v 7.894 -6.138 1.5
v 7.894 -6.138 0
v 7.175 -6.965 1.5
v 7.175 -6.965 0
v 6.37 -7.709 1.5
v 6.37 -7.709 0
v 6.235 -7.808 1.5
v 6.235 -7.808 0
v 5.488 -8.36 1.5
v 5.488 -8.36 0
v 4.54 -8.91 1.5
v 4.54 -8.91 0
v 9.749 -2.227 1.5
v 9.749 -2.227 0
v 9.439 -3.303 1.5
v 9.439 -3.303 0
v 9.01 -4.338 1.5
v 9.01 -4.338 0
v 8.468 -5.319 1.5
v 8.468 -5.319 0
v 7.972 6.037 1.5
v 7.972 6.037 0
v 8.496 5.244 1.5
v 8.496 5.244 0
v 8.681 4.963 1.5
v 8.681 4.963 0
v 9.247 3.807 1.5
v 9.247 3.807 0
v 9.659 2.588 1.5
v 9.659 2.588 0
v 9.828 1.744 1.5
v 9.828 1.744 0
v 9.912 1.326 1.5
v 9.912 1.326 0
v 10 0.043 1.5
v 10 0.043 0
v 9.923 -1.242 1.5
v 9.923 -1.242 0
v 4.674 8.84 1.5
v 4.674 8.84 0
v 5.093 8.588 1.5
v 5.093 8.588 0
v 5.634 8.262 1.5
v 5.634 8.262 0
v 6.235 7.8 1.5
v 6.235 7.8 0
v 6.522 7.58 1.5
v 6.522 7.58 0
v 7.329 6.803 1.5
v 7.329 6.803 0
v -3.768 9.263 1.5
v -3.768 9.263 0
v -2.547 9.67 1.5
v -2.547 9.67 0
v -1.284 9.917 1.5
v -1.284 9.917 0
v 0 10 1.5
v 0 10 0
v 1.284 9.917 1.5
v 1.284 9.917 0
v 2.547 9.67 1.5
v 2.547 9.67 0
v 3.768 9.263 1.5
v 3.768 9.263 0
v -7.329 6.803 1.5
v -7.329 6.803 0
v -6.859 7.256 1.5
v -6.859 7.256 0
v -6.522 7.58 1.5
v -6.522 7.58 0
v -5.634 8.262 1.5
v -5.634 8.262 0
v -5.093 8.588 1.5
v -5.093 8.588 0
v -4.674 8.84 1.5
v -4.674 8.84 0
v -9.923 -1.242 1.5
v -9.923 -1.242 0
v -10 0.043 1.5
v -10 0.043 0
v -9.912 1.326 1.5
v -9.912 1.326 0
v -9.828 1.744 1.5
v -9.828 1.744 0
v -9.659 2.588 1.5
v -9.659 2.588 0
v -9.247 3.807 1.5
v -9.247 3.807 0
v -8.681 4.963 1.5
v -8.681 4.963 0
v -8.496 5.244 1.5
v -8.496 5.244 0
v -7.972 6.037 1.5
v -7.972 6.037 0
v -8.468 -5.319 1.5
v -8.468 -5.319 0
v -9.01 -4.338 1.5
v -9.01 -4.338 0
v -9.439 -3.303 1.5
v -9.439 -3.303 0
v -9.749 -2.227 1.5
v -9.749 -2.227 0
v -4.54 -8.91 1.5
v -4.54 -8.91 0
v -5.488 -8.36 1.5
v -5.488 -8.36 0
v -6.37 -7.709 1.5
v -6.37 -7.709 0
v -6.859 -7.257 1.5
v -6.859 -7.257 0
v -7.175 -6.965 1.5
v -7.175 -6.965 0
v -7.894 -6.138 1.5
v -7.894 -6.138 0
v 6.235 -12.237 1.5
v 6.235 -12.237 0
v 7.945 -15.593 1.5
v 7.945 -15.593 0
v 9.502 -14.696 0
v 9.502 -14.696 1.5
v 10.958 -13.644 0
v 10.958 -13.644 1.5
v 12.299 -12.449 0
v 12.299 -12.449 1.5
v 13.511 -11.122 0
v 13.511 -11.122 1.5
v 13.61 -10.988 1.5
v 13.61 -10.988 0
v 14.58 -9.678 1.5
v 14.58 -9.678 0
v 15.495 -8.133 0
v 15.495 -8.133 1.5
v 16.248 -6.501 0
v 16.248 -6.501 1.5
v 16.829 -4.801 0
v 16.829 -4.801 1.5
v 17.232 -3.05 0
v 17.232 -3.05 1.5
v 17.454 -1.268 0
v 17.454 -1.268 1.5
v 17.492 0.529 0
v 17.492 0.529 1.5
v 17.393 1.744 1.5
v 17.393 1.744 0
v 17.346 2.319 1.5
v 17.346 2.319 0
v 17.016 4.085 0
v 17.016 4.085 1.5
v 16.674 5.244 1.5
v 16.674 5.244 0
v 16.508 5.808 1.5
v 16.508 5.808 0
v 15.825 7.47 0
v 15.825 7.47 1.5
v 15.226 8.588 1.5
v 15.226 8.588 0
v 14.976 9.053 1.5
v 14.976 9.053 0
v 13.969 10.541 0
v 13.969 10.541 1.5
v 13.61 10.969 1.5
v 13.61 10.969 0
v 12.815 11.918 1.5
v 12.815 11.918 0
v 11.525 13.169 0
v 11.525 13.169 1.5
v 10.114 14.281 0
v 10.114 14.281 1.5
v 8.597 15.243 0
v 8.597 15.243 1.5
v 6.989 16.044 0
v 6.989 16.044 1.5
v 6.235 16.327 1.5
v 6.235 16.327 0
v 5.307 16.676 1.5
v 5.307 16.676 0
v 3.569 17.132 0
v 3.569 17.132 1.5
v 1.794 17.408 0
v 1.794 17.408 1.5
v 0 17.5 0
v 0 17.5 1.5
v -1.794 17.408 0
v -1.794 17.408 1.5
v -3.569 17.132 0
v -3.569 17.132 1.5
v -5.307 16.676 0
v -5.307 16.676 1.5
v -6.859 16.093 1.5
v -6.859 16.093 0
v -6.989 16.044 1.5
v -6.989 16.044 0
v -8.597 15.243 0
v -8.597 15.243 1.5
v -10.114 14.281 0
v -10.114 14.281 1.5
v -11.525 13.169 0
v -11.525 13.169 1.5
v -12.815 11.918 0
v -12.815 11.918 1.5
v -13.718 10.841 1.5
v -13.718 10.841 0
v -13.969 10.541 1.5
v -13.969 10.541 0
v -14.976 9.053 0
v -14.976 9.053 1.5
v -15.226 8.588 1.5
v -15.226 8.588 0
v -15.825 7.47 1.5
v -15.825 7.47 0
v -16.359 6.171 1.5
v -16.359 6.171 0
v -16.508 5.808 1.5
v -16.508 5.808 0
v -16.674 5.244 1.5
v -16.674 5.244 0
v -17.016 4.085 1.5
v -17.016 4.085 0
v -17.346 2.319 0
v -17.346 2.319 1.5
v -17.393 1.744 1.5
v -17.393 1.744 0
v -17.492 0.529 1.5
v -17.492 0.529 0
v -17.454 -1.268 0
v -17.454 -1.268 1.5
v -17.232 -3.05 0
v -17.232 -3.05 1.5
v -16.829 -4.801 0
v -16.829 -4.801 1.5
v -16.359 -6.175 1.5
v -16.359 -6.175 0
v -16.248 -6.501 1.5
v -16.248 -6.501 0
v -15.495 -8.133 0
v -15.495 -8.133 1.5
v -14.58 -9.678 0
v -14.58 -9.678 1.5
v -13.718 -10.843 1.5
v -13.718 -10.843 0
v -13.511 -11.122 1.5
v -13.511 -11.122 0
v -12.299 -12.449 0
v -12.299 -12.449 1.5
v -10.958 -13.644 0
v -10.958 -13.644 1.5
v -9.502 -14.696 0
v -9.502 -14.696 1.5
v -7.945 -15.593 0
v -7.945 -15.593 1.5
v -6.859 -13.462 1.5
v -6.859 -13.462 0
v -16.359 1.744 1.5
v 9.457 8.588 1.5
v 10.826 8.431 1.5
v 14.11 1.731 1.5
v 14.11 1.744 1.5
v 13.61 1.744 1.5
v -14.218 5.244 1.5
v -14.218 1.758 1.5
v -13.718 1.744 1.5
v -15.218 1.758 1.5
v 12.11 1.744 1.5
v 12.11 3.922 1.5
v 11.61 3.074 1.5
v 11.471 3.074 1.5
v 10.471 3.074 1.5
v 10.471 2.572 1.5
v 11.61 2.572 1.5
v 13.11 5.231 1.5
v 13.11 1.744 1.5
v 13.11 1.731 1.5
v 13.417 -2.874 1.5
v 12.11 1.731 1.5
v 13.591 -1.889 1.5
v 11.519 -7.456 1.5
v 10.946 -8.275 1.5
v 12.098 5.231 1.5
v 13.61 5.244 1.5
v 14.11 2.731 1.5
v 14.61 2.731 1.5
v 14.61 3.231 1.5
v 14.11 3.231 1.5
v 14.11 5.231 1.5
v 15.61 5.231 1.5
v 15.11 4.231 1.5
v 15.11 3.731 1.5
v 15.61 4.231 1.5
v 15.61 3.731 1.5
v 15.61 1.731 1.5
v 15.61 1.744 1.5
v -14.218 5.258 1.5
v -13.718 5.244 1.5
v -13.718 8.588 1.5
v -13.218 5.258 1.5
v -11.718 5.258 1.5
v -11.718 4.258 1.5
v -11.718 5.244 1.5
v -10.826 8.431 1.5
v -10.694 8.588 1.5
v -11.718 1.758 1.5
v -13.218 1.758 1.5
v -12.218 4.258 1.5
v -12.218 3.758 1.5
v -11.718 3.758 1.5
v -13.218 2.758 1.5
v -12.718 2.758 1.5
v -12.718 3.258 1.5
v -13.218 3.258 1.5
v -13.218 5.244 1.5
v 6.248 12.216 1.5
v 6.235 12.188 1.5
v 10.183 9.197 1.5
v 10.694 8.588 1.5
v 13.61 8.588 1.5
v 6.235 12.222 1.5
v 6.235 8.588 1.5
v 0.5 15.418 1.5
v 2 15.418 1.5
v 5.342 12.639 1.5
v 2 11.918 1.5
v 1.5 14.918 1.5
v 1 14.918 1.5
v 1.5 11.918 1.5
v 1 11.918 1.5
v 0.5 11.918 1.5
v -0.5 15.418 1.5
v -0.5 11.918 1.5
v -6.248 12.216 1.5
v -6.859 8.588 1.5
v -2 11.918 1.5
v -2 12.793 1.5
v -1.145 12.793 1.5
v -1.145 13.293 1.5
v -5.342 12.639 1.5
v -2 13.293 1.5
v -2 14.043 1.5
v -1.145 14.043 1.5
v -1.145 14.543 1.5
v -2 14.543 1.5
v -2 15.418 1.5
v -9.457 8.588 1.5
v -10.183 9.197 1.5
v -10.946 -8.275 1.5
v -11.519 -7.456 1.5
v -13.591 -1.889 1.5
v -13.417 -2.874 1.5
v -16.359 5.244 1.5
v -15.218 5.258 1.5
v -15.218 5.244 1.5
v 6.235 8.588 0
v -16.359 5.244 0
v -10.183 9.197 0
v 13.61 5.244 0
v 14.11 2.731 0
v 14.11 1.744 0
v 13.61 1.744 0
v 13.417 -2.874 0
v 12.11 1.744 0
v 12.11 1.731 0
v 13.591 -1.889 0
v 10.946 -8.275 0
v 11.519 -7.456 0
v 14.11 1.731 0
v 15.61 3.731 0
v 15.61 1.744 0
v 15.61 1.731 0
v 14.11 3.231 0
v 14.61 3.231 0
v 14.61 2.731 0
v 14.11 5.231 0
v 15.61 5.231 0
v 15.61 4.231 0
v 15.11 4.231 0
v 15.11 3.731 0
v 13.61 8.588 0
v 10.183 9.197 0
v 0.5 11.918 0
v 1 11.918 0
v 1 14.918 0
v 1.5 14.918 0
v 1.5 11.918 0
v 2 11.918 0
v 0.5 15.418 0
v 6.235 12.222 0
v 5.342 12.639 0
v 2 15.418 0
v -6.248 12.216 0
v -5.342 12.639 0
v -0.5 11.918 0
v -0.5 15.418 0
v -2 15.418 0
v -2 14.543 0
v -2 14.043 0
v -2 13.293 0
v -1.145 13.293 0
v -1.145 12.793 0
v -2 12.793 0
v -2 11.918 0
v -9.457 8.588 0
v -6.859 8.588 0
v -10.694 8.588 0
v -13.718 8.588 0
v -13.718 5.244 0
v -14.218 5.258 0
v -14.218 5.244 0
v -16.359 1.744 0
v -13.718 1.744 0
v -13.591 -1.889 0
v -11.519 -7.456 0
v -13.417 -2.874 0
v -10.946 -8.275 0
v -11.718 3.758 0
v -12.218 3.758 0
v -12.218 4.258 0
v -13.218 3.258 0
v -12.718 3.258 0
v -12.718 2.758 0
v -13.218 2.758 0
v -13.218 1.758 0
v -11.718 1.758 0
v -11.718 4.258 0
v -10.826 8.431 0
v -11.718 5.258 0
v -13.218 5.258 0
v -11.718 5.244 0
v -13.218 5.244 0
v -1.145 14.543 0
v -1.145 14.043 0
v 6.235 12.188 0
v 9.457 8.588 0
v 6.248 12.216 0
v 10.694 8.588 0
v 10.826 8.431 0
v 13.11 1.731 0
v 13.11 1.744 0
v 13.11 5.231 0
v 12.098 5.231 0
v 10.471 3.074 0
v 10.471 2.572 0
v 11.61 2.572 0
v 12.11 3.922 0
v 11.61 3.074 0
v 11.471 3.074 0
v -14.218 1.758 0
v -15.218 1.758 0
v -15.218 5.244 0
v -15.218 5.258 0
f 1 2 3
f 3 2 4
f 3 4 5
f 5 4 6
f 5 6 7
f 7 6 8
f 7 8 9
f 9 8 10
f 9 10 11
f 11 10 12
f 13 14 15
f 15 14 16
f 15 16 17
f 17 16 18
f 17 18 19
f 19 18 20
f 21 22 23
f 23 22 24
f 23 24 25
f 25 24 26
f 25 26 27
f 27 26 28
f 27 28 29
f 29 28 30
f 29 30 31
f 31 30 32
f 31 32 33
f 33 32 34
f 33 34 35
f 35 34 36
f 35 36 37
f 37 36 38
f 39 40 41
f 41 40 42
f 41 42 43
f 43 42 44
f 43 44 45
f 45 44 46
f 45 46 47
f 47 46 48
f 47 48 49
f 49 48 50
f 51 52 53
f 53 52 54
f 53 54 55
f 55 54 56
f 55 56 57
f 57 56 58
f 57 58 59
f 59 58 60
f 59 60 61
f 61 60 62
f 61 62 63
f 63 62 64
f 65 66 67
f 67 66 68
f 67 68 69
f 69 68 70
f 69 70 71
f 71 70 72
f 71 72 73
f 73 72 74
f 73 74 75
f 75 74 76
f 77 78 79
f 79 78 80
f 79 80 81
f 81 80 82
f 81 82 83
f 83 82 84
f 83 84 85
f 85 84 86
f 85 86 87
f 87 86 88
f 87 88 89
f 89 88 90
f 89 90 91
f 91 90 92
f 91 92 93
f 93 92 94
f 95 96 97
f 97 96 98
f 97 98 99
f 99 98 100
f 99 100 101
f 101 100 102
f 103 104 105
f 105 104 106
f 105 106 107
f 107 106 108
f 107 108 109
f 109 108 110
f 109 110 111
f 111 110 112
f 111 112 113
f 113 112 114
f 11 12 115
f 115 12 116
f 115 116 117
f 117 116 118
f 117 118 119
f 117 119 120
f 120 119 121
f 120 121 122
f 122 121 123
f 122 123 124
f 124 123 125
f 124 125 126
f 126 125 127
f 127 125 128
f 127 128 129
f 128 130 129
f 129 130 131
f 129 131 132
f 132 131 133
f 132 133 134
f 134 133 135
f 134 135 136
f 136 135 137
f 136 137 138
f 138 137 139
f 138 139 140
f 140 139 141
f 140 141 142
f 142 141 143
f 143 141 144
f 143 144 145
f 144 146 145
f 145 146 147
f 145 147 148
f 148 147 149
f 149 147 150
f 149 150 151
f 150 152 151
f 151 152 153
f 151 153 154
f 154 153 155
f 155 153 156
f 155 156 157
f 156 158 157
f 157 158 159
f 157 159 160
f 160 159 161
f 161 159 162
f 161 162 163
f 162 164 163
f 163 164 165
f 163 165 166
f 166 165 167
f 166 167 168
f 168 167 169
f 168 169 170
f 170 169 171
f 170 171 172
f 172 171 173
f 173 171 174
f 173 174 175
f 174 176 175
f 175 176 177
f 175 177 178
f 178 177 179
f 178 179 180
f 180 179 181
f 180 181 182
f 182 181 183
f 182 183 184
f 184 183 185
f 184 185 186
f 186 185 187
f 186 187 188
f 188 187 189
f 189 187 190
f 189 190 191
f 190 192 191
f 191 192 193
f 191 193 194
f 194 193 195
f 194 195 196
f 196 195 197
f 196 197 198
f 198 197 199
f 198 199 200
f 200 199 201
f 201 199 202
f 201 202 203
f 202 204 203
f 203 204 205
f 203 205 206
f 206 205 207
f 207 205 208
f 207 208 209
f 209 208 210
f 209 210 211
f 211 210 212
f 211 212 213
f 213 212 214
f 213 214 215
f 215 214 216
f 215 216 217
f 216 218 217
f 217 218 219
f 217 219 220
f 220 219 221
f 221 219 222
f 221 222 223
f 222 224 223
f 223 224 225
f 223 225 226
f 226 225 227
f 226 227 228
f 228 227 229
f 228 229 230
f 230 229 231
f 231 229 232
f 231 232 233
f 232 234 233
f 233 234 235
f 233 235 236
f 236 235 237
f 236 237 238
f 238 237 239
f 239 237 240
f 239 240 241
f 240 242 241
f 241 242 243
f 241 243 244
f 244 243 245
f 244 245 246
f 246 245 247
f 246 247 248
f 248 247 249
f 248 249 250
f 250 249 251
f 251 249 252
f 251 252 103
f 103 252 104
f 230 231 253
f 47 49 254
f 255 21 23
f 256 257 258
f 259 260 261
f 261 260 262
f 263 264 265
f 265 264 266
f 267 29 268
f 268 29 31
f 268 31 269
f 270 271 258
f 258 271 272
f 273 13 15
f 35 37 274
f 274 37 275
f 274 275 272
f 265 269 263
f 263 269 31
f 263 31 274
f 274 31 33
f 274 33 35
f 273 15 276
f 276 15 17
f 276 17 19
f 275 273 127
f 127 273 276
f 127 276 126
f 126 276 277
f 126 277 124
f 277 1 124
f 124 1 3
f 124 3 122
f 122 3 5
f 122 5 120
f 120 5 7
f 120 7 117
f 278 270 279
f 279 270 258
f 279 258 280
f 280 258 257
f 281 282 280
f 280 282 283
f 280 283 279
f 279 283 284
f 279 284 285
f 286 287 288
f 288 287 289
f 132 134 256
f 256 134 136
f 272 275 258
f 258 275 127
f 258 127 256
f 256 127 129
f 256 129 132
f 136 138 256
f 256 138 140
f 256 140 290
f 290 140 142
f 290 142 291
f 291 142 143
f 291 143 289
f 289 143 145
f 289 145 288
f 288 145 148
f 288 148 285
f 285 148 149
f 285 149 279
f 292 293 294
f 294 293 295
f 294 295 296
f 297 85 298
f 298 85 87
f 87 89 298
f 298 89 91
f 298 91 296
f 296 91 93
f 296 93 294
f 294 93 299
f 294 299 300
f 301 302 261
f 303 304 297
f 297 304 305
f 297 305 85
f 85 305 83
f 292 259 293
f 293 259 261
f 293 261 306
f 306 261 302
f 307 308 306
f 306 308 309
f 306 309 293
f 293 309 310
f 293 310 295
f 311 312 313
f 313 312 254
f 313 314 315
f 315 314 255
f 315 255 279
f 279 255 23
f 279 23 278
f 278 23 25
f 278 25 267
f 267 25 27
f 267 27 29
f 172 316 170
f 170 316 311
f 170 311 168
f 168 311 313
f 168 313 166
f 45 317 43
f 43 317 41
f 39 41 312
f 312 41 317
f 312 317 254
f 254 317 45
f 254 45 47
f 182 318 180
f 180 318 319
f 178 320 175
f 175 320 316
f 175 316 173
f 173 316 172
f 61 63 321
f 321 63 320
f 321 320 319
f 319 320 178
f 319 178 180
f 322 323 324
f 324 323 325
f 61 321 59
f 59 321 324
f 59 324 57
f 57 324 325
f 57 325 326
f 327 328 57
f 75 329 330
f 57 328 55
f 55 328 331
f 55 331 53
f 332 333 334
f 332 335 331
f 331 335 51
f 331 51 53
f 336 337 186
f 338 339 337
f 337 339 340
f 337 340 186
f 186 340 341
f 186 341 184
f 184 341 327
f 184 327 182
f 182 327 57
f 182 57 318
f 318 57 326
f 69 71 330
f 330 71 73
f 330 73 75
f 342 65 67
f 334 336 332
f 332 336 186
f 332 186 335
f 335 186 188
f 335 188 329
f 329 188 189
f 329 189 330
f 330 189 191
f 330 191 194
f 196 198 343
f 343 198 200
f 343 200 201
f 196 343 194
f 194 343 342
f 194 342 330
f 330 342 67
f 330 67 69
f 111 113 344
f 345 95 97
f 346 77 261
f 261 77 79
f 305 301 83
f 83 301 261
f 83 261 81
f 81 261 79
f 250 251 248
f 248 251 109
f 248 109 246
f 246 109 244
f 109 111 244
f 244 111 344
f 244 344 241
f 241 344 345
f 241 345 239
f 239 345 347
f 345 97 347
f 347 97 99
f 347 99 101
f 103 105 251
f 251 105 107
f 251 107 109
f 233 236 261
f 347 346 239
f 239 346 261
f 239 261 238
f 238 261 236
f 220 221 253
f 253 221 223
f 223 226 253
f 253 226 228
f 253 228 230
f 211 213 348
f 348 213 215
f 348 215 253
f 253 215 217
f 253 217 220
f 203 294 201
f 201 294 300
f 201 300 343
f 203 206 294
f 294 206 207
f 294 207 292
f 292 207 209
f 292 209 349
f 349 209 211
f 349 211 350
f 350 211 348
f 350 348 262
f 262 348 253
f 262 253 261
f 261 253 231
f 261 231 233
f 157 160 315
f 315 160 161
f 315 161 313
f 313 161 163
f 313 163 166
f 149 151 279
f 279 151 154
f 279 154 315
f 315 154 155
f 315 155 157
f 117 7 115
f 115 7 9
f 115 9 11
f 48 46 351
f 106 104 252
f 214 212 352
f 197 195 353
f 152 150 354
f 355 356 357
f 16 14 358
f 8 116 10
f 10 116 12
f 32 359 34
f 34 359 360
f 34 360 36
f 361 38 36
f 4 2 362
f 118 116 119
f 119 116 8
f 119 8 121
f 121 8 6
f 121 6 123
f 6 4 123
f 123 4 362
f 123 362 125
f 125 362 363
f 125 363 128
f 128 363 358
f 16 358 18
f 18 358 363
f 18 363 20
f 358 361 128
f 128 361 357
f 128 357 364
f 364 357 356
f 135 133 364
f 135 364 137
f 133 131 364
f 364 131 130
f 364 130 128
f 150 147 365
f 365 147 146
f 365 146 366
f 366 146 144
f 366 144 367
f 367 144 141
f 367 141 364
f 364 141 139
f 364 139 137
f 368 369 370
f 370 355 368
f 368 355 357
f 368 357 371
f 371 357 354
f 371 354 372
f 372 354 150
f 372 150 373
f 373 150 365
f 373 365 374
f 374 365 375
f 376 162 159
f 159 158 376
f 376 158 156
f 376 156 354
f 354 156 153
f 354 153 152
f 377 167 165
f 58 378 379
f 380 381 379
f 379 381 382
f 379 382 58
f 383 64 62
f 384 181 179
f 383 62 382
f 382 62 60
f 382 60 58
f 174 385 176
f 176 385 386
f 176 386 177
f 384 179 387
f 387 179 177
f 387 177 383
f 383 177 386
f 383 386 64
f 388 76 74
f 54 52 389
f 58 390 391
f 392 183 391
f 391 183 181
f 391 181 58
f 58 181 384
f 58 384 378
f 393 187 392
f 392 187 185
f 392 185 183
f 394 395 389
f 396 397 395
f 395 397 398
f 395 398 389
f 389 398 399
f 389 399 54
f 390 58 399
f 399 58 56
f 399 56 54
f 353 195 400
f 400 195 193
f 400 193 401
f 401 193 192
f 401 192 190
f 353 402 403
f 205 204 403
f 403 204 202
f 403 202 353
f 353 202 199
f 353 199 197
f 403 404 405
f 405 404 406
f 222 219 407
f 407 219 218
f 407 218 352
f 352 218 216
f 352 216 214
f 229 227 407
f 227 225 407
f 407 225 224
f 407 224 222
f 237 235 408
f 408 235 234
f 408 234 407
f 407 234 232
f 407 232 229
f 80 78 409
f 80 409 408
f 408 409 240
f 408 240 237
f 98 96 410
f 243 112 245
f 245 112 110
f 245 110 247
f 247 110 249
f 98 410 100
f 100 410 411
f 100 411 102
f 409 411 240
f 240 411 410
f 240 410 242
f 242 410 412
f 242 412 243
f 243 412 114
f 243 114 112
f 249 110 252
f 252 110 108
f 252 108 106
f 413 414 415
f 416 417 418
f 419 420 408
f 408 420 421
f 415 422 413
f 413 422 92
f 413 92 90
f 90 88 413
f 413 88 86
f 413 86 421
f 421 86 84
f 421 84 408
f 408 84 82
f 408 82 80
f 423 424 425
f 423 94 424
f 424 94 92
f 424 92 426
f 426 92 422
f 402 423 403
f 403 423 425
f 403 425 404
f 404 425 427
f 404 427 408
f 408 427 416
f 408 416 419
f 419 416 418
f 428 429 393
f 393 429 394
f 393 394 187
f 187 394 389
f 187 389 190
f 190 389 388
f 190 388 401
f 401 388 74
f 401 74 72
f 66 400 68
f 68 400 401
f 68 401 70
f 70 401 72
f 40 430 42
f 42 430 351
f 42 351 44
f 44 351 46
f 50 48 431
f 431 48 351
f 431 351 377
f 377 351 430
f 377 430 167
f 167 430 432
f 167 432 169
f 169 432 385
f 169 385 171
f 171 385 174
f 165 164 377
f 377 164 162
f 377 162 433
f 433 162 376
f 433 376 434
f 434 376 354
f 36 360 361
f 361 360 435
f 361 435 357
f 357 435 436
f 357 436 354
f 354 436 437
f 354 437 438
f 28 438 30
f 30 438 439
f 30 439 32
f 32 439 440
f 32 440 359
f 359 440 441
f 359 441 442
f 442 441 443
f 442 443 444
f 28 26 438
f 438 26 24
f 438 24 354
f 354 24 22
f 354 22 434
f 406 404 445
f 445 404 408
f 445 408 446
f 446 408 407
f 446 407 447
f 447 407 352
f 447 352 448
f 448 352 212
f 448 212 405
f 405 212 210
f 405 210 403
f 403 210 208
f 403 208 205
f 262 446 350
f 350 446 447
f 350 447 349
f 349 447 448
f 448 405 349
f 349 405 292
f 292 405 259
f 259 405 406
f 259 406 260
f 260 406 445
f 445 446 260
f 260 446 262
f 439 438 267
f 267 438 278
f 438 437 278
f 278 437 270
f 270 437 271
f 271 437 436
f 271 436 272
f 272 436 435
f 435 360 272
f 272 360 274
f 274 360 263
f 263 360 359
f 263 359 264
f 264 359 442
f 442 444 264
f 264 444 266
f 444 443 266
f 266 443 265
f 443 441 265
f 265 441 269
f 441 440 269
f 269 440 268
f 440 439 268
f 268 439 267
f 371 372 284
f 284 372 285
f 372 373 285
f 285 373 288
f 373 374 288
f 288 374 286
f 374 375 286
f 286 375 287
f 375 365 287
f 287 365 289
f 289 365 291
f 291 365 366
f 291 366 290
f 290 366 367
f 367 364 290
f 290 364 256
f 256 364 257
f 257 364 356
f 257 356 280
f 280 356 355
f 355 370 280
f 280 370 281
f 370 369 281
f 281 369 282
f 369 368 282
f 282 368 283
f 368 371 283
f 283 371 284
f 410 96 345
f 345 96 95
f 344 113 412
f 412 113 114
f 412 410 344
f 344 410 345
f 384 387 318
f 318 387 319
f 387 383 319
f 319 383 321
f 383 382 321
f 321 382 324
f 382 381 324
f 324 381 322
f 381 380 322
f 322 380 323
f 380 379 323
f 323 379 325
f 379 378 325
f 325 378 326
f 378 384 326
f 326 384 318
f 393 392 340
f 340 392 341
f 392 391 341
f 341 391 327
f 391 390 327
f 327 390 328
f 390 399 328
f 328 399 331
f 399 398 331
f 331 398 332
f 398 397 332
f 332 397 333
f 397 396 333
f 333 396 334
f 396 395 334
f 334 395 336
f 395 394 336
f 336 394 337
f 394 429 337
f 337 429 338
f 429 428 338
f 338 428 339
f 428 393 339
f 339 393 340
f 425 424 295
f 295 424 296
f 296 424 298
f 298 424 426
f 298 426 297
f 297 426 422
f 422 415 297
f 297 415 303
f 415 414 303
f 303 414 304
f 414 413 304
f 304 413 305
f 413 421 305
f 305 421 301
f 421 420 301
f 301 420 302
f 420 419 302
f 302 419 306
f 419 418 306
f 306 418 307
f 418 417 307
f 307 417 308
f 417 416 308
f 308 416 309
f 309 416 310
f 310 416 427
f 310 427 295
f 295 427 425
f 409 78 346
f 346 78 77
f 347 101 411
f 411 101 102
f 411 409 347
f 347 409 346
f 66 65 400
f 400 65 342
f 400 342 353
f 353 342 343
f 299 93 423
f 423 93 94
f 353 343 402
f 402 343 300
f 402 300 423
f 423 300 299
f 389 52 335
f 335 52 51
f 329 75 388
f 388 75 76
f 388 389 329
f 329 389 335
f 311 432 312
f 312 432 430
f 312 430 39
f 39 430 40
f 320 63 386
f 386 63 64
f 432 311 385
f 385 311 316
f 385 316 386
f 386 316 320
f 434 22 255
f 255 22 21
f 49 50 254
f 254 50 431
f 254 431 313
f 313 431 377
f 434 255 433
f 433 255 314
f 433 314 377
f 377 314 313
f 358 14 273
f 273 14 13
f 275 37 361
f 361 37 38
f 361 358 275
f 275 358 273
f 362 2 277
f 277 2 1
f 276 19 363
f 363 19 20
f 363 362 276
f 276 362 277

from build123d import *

# Parameters (mm, degrees)
BOSS_EXTRUDE1_DEPTH = 1.5
SKETCH2_W           = 1
SKETCH2_H           = 3.5
CUT_EXTRUDE1_DEPTH  = 1.5


with BuildPart() as part:
    # Sketch1 → Boss-Extrude1 (new body)
    with BuildSketch(Plane.XY):
        with BuildLine():
            Line((-4.539904997, -8.910065242), (-7.944833745, -15.592614173))
            ThreePointArc((-7.944833745, -15.592614173), (0, 17.5), (7.944833745, -15.592614173))
            Line((7.944833745, -15.592614173), (4.539904997, -8.910065242))
            ThreePointArc((4.539904997, -8.910065242), (0, 10), (-4.539904997, -8.910065242))
        make_face()
    extrude(amount=BOSS_EXTRUDE1_DEPTH)

    # Sketch2 → Cut-Extrude1 (cut)
    with BuildSketch(Plane.XY.offset(1.5)):
        with Locations((-14.718025133, 3.507588082)):
            Rectangle(SKETCH2_W, SKETCH2_H)
        Polygon((-13.218025133, 5.257588082), (-13.218025133, 3.257588082), (-12.718025133, 3.257588082), (-12.718025133, 2.757588082), (-13.218025133, 2.757588082), (-13.218025133, 1.757588082), (-11.718025133, 1.757588082), (-11.718025133, 3.757588082), (-12.218025133, 3.757588082), (-12.218025133, 4.257588082), (-11.718025133, 4.257588082), (-11.718025133, 5.257588082), align=None)
        Polygon((-2, 15.418453076), (-0.5, 15.418453076), (-0.5, 11.918453076), (-2, 11.918453076), (-2, 12.793453076), (-1.1452971, 12.793453076), (-1.1452971, 13.293453076), (-2, 13.293453076), (-2, 14.043453076), (-1.1452971, 14.043453076), (-1.1452971, 14.543453076), (-2, 14.543453076), align=None)
        Polygon((0.5, 15.418453076), (0.5, 11.918453076), (1, 11.918453076), (1, 12.418453076), (1, 14.918453076), (1.5, 14.918453076), (1.5, 12.418453076), (1.5, 11.918453076), (2, 11.918453076), (2, 15.418453076), align=None)
        Polygon((12.097744761, 5.231352171), (13.110444891, 5.231352171), (13.110444891, 1.731375213), (12.110444891, 1.731375213), (12.110444891, 3.922086384), (11.470557234, 3.073526548), (11.610444891, 3.073526548), (11.610444891, 2.572345702), (10.470557234, 2.572345702), (10.470557234, 3.073526548), align=None)
        Polygon((14.110444891, 5.231352171), (14.110444891, 3.231375213), (14.610444891, 3.231375213), (14.610444891, 2.731375213), (14.110444891, 2.731375213), (14.110444891, 1.731375213), (15.610444891, 1.731375213), (15.610444891, 3.731375213), (15.110444891, 3.731375213), (15.110444891, 4.231375213), (15.610444891, 4.231375213), (15.610444891, 5.231352171), align=None)
        Polygon((-11.232578871, -7.865136399), (-11.519367089, -7.455560377), (-8.468062853, -5.319014149), (-7.473400559, -4.622544113), (-6.899824123, -5.441696158), (-7.894486417, -6.138166194), (-10.945790653, -8.274712421), align=None)
        Polygon((-13.504123972, -2.381141407), (-13.590948061, -1.888737531), (-9.922583819, -1.24190594), (-8.726772681, -1.031052172), (-8.553124503, -2.015859925), (-9.748935641, -2.226713693), (-13.417299884, -2.873545284), align=None)
        Polygon((-10.504343712, 8.814190935), (-10.182949908, 9.197213156), (-7.329469079, 6.802858445), (-6.399293139, 6.022348157), (-7.042080748, 5.256303714), (-7.972256688, 6.036814002), (-10.825737517, 8.431168713), align=None)
        Polygon((-5.795130453, 12.427697361), (-5.341976559, 12.639006492), (-3.76774269, 9.263051065), (-3.254574893, 8.162559174), (-4.16088268, 7.739940912), (-4.674050477, 8.840432803), (-6.248284346, 12.21638823), align=None)
        Polygon((5.795130453, 12.427697361), (6.248284346, 12.21638823), (4.674050477, 8.840432803), (4.16088268, 7.739940912), (3.254574893, 8.162559174), (3.76774269, 9.263051065), (5.341976559, 12.639006492), align=None)
        Polygon((10.504343712, 8.814190935), (10.825737517, 8.431168713), (7.972256688, 6.036814002), (7.042080748, 5.256303714), (6.399293139, 6.022348157), (7.329469079, 6.802858445), (10.182949908, 9.197213156), align=None)
        Polygon((13.504123972, -2.381141407), (13.417299884, -2.873545284), (9.748935641, -2.226713693), (8.553124503, -2.015859925), (8.726772681, -1.031052172), (9.922583819, -1.24190594), (13.590948061, -1.888737531), align=None)
        Polygon((11.232578871, -7.865136399), (10.945790653, -8.274712421), (7.894486417, -6.138166194), (6.899824123, -5.441696158), (7.473400559, -4.622544113), (8.468062853, -5.319014149), (11.519367089, -7.455560377), align=None)
    extrude(amount=-CUT_EXTRUDE1_DEPTH, mode=Mode.SUBTRACT)


solid = part.part
